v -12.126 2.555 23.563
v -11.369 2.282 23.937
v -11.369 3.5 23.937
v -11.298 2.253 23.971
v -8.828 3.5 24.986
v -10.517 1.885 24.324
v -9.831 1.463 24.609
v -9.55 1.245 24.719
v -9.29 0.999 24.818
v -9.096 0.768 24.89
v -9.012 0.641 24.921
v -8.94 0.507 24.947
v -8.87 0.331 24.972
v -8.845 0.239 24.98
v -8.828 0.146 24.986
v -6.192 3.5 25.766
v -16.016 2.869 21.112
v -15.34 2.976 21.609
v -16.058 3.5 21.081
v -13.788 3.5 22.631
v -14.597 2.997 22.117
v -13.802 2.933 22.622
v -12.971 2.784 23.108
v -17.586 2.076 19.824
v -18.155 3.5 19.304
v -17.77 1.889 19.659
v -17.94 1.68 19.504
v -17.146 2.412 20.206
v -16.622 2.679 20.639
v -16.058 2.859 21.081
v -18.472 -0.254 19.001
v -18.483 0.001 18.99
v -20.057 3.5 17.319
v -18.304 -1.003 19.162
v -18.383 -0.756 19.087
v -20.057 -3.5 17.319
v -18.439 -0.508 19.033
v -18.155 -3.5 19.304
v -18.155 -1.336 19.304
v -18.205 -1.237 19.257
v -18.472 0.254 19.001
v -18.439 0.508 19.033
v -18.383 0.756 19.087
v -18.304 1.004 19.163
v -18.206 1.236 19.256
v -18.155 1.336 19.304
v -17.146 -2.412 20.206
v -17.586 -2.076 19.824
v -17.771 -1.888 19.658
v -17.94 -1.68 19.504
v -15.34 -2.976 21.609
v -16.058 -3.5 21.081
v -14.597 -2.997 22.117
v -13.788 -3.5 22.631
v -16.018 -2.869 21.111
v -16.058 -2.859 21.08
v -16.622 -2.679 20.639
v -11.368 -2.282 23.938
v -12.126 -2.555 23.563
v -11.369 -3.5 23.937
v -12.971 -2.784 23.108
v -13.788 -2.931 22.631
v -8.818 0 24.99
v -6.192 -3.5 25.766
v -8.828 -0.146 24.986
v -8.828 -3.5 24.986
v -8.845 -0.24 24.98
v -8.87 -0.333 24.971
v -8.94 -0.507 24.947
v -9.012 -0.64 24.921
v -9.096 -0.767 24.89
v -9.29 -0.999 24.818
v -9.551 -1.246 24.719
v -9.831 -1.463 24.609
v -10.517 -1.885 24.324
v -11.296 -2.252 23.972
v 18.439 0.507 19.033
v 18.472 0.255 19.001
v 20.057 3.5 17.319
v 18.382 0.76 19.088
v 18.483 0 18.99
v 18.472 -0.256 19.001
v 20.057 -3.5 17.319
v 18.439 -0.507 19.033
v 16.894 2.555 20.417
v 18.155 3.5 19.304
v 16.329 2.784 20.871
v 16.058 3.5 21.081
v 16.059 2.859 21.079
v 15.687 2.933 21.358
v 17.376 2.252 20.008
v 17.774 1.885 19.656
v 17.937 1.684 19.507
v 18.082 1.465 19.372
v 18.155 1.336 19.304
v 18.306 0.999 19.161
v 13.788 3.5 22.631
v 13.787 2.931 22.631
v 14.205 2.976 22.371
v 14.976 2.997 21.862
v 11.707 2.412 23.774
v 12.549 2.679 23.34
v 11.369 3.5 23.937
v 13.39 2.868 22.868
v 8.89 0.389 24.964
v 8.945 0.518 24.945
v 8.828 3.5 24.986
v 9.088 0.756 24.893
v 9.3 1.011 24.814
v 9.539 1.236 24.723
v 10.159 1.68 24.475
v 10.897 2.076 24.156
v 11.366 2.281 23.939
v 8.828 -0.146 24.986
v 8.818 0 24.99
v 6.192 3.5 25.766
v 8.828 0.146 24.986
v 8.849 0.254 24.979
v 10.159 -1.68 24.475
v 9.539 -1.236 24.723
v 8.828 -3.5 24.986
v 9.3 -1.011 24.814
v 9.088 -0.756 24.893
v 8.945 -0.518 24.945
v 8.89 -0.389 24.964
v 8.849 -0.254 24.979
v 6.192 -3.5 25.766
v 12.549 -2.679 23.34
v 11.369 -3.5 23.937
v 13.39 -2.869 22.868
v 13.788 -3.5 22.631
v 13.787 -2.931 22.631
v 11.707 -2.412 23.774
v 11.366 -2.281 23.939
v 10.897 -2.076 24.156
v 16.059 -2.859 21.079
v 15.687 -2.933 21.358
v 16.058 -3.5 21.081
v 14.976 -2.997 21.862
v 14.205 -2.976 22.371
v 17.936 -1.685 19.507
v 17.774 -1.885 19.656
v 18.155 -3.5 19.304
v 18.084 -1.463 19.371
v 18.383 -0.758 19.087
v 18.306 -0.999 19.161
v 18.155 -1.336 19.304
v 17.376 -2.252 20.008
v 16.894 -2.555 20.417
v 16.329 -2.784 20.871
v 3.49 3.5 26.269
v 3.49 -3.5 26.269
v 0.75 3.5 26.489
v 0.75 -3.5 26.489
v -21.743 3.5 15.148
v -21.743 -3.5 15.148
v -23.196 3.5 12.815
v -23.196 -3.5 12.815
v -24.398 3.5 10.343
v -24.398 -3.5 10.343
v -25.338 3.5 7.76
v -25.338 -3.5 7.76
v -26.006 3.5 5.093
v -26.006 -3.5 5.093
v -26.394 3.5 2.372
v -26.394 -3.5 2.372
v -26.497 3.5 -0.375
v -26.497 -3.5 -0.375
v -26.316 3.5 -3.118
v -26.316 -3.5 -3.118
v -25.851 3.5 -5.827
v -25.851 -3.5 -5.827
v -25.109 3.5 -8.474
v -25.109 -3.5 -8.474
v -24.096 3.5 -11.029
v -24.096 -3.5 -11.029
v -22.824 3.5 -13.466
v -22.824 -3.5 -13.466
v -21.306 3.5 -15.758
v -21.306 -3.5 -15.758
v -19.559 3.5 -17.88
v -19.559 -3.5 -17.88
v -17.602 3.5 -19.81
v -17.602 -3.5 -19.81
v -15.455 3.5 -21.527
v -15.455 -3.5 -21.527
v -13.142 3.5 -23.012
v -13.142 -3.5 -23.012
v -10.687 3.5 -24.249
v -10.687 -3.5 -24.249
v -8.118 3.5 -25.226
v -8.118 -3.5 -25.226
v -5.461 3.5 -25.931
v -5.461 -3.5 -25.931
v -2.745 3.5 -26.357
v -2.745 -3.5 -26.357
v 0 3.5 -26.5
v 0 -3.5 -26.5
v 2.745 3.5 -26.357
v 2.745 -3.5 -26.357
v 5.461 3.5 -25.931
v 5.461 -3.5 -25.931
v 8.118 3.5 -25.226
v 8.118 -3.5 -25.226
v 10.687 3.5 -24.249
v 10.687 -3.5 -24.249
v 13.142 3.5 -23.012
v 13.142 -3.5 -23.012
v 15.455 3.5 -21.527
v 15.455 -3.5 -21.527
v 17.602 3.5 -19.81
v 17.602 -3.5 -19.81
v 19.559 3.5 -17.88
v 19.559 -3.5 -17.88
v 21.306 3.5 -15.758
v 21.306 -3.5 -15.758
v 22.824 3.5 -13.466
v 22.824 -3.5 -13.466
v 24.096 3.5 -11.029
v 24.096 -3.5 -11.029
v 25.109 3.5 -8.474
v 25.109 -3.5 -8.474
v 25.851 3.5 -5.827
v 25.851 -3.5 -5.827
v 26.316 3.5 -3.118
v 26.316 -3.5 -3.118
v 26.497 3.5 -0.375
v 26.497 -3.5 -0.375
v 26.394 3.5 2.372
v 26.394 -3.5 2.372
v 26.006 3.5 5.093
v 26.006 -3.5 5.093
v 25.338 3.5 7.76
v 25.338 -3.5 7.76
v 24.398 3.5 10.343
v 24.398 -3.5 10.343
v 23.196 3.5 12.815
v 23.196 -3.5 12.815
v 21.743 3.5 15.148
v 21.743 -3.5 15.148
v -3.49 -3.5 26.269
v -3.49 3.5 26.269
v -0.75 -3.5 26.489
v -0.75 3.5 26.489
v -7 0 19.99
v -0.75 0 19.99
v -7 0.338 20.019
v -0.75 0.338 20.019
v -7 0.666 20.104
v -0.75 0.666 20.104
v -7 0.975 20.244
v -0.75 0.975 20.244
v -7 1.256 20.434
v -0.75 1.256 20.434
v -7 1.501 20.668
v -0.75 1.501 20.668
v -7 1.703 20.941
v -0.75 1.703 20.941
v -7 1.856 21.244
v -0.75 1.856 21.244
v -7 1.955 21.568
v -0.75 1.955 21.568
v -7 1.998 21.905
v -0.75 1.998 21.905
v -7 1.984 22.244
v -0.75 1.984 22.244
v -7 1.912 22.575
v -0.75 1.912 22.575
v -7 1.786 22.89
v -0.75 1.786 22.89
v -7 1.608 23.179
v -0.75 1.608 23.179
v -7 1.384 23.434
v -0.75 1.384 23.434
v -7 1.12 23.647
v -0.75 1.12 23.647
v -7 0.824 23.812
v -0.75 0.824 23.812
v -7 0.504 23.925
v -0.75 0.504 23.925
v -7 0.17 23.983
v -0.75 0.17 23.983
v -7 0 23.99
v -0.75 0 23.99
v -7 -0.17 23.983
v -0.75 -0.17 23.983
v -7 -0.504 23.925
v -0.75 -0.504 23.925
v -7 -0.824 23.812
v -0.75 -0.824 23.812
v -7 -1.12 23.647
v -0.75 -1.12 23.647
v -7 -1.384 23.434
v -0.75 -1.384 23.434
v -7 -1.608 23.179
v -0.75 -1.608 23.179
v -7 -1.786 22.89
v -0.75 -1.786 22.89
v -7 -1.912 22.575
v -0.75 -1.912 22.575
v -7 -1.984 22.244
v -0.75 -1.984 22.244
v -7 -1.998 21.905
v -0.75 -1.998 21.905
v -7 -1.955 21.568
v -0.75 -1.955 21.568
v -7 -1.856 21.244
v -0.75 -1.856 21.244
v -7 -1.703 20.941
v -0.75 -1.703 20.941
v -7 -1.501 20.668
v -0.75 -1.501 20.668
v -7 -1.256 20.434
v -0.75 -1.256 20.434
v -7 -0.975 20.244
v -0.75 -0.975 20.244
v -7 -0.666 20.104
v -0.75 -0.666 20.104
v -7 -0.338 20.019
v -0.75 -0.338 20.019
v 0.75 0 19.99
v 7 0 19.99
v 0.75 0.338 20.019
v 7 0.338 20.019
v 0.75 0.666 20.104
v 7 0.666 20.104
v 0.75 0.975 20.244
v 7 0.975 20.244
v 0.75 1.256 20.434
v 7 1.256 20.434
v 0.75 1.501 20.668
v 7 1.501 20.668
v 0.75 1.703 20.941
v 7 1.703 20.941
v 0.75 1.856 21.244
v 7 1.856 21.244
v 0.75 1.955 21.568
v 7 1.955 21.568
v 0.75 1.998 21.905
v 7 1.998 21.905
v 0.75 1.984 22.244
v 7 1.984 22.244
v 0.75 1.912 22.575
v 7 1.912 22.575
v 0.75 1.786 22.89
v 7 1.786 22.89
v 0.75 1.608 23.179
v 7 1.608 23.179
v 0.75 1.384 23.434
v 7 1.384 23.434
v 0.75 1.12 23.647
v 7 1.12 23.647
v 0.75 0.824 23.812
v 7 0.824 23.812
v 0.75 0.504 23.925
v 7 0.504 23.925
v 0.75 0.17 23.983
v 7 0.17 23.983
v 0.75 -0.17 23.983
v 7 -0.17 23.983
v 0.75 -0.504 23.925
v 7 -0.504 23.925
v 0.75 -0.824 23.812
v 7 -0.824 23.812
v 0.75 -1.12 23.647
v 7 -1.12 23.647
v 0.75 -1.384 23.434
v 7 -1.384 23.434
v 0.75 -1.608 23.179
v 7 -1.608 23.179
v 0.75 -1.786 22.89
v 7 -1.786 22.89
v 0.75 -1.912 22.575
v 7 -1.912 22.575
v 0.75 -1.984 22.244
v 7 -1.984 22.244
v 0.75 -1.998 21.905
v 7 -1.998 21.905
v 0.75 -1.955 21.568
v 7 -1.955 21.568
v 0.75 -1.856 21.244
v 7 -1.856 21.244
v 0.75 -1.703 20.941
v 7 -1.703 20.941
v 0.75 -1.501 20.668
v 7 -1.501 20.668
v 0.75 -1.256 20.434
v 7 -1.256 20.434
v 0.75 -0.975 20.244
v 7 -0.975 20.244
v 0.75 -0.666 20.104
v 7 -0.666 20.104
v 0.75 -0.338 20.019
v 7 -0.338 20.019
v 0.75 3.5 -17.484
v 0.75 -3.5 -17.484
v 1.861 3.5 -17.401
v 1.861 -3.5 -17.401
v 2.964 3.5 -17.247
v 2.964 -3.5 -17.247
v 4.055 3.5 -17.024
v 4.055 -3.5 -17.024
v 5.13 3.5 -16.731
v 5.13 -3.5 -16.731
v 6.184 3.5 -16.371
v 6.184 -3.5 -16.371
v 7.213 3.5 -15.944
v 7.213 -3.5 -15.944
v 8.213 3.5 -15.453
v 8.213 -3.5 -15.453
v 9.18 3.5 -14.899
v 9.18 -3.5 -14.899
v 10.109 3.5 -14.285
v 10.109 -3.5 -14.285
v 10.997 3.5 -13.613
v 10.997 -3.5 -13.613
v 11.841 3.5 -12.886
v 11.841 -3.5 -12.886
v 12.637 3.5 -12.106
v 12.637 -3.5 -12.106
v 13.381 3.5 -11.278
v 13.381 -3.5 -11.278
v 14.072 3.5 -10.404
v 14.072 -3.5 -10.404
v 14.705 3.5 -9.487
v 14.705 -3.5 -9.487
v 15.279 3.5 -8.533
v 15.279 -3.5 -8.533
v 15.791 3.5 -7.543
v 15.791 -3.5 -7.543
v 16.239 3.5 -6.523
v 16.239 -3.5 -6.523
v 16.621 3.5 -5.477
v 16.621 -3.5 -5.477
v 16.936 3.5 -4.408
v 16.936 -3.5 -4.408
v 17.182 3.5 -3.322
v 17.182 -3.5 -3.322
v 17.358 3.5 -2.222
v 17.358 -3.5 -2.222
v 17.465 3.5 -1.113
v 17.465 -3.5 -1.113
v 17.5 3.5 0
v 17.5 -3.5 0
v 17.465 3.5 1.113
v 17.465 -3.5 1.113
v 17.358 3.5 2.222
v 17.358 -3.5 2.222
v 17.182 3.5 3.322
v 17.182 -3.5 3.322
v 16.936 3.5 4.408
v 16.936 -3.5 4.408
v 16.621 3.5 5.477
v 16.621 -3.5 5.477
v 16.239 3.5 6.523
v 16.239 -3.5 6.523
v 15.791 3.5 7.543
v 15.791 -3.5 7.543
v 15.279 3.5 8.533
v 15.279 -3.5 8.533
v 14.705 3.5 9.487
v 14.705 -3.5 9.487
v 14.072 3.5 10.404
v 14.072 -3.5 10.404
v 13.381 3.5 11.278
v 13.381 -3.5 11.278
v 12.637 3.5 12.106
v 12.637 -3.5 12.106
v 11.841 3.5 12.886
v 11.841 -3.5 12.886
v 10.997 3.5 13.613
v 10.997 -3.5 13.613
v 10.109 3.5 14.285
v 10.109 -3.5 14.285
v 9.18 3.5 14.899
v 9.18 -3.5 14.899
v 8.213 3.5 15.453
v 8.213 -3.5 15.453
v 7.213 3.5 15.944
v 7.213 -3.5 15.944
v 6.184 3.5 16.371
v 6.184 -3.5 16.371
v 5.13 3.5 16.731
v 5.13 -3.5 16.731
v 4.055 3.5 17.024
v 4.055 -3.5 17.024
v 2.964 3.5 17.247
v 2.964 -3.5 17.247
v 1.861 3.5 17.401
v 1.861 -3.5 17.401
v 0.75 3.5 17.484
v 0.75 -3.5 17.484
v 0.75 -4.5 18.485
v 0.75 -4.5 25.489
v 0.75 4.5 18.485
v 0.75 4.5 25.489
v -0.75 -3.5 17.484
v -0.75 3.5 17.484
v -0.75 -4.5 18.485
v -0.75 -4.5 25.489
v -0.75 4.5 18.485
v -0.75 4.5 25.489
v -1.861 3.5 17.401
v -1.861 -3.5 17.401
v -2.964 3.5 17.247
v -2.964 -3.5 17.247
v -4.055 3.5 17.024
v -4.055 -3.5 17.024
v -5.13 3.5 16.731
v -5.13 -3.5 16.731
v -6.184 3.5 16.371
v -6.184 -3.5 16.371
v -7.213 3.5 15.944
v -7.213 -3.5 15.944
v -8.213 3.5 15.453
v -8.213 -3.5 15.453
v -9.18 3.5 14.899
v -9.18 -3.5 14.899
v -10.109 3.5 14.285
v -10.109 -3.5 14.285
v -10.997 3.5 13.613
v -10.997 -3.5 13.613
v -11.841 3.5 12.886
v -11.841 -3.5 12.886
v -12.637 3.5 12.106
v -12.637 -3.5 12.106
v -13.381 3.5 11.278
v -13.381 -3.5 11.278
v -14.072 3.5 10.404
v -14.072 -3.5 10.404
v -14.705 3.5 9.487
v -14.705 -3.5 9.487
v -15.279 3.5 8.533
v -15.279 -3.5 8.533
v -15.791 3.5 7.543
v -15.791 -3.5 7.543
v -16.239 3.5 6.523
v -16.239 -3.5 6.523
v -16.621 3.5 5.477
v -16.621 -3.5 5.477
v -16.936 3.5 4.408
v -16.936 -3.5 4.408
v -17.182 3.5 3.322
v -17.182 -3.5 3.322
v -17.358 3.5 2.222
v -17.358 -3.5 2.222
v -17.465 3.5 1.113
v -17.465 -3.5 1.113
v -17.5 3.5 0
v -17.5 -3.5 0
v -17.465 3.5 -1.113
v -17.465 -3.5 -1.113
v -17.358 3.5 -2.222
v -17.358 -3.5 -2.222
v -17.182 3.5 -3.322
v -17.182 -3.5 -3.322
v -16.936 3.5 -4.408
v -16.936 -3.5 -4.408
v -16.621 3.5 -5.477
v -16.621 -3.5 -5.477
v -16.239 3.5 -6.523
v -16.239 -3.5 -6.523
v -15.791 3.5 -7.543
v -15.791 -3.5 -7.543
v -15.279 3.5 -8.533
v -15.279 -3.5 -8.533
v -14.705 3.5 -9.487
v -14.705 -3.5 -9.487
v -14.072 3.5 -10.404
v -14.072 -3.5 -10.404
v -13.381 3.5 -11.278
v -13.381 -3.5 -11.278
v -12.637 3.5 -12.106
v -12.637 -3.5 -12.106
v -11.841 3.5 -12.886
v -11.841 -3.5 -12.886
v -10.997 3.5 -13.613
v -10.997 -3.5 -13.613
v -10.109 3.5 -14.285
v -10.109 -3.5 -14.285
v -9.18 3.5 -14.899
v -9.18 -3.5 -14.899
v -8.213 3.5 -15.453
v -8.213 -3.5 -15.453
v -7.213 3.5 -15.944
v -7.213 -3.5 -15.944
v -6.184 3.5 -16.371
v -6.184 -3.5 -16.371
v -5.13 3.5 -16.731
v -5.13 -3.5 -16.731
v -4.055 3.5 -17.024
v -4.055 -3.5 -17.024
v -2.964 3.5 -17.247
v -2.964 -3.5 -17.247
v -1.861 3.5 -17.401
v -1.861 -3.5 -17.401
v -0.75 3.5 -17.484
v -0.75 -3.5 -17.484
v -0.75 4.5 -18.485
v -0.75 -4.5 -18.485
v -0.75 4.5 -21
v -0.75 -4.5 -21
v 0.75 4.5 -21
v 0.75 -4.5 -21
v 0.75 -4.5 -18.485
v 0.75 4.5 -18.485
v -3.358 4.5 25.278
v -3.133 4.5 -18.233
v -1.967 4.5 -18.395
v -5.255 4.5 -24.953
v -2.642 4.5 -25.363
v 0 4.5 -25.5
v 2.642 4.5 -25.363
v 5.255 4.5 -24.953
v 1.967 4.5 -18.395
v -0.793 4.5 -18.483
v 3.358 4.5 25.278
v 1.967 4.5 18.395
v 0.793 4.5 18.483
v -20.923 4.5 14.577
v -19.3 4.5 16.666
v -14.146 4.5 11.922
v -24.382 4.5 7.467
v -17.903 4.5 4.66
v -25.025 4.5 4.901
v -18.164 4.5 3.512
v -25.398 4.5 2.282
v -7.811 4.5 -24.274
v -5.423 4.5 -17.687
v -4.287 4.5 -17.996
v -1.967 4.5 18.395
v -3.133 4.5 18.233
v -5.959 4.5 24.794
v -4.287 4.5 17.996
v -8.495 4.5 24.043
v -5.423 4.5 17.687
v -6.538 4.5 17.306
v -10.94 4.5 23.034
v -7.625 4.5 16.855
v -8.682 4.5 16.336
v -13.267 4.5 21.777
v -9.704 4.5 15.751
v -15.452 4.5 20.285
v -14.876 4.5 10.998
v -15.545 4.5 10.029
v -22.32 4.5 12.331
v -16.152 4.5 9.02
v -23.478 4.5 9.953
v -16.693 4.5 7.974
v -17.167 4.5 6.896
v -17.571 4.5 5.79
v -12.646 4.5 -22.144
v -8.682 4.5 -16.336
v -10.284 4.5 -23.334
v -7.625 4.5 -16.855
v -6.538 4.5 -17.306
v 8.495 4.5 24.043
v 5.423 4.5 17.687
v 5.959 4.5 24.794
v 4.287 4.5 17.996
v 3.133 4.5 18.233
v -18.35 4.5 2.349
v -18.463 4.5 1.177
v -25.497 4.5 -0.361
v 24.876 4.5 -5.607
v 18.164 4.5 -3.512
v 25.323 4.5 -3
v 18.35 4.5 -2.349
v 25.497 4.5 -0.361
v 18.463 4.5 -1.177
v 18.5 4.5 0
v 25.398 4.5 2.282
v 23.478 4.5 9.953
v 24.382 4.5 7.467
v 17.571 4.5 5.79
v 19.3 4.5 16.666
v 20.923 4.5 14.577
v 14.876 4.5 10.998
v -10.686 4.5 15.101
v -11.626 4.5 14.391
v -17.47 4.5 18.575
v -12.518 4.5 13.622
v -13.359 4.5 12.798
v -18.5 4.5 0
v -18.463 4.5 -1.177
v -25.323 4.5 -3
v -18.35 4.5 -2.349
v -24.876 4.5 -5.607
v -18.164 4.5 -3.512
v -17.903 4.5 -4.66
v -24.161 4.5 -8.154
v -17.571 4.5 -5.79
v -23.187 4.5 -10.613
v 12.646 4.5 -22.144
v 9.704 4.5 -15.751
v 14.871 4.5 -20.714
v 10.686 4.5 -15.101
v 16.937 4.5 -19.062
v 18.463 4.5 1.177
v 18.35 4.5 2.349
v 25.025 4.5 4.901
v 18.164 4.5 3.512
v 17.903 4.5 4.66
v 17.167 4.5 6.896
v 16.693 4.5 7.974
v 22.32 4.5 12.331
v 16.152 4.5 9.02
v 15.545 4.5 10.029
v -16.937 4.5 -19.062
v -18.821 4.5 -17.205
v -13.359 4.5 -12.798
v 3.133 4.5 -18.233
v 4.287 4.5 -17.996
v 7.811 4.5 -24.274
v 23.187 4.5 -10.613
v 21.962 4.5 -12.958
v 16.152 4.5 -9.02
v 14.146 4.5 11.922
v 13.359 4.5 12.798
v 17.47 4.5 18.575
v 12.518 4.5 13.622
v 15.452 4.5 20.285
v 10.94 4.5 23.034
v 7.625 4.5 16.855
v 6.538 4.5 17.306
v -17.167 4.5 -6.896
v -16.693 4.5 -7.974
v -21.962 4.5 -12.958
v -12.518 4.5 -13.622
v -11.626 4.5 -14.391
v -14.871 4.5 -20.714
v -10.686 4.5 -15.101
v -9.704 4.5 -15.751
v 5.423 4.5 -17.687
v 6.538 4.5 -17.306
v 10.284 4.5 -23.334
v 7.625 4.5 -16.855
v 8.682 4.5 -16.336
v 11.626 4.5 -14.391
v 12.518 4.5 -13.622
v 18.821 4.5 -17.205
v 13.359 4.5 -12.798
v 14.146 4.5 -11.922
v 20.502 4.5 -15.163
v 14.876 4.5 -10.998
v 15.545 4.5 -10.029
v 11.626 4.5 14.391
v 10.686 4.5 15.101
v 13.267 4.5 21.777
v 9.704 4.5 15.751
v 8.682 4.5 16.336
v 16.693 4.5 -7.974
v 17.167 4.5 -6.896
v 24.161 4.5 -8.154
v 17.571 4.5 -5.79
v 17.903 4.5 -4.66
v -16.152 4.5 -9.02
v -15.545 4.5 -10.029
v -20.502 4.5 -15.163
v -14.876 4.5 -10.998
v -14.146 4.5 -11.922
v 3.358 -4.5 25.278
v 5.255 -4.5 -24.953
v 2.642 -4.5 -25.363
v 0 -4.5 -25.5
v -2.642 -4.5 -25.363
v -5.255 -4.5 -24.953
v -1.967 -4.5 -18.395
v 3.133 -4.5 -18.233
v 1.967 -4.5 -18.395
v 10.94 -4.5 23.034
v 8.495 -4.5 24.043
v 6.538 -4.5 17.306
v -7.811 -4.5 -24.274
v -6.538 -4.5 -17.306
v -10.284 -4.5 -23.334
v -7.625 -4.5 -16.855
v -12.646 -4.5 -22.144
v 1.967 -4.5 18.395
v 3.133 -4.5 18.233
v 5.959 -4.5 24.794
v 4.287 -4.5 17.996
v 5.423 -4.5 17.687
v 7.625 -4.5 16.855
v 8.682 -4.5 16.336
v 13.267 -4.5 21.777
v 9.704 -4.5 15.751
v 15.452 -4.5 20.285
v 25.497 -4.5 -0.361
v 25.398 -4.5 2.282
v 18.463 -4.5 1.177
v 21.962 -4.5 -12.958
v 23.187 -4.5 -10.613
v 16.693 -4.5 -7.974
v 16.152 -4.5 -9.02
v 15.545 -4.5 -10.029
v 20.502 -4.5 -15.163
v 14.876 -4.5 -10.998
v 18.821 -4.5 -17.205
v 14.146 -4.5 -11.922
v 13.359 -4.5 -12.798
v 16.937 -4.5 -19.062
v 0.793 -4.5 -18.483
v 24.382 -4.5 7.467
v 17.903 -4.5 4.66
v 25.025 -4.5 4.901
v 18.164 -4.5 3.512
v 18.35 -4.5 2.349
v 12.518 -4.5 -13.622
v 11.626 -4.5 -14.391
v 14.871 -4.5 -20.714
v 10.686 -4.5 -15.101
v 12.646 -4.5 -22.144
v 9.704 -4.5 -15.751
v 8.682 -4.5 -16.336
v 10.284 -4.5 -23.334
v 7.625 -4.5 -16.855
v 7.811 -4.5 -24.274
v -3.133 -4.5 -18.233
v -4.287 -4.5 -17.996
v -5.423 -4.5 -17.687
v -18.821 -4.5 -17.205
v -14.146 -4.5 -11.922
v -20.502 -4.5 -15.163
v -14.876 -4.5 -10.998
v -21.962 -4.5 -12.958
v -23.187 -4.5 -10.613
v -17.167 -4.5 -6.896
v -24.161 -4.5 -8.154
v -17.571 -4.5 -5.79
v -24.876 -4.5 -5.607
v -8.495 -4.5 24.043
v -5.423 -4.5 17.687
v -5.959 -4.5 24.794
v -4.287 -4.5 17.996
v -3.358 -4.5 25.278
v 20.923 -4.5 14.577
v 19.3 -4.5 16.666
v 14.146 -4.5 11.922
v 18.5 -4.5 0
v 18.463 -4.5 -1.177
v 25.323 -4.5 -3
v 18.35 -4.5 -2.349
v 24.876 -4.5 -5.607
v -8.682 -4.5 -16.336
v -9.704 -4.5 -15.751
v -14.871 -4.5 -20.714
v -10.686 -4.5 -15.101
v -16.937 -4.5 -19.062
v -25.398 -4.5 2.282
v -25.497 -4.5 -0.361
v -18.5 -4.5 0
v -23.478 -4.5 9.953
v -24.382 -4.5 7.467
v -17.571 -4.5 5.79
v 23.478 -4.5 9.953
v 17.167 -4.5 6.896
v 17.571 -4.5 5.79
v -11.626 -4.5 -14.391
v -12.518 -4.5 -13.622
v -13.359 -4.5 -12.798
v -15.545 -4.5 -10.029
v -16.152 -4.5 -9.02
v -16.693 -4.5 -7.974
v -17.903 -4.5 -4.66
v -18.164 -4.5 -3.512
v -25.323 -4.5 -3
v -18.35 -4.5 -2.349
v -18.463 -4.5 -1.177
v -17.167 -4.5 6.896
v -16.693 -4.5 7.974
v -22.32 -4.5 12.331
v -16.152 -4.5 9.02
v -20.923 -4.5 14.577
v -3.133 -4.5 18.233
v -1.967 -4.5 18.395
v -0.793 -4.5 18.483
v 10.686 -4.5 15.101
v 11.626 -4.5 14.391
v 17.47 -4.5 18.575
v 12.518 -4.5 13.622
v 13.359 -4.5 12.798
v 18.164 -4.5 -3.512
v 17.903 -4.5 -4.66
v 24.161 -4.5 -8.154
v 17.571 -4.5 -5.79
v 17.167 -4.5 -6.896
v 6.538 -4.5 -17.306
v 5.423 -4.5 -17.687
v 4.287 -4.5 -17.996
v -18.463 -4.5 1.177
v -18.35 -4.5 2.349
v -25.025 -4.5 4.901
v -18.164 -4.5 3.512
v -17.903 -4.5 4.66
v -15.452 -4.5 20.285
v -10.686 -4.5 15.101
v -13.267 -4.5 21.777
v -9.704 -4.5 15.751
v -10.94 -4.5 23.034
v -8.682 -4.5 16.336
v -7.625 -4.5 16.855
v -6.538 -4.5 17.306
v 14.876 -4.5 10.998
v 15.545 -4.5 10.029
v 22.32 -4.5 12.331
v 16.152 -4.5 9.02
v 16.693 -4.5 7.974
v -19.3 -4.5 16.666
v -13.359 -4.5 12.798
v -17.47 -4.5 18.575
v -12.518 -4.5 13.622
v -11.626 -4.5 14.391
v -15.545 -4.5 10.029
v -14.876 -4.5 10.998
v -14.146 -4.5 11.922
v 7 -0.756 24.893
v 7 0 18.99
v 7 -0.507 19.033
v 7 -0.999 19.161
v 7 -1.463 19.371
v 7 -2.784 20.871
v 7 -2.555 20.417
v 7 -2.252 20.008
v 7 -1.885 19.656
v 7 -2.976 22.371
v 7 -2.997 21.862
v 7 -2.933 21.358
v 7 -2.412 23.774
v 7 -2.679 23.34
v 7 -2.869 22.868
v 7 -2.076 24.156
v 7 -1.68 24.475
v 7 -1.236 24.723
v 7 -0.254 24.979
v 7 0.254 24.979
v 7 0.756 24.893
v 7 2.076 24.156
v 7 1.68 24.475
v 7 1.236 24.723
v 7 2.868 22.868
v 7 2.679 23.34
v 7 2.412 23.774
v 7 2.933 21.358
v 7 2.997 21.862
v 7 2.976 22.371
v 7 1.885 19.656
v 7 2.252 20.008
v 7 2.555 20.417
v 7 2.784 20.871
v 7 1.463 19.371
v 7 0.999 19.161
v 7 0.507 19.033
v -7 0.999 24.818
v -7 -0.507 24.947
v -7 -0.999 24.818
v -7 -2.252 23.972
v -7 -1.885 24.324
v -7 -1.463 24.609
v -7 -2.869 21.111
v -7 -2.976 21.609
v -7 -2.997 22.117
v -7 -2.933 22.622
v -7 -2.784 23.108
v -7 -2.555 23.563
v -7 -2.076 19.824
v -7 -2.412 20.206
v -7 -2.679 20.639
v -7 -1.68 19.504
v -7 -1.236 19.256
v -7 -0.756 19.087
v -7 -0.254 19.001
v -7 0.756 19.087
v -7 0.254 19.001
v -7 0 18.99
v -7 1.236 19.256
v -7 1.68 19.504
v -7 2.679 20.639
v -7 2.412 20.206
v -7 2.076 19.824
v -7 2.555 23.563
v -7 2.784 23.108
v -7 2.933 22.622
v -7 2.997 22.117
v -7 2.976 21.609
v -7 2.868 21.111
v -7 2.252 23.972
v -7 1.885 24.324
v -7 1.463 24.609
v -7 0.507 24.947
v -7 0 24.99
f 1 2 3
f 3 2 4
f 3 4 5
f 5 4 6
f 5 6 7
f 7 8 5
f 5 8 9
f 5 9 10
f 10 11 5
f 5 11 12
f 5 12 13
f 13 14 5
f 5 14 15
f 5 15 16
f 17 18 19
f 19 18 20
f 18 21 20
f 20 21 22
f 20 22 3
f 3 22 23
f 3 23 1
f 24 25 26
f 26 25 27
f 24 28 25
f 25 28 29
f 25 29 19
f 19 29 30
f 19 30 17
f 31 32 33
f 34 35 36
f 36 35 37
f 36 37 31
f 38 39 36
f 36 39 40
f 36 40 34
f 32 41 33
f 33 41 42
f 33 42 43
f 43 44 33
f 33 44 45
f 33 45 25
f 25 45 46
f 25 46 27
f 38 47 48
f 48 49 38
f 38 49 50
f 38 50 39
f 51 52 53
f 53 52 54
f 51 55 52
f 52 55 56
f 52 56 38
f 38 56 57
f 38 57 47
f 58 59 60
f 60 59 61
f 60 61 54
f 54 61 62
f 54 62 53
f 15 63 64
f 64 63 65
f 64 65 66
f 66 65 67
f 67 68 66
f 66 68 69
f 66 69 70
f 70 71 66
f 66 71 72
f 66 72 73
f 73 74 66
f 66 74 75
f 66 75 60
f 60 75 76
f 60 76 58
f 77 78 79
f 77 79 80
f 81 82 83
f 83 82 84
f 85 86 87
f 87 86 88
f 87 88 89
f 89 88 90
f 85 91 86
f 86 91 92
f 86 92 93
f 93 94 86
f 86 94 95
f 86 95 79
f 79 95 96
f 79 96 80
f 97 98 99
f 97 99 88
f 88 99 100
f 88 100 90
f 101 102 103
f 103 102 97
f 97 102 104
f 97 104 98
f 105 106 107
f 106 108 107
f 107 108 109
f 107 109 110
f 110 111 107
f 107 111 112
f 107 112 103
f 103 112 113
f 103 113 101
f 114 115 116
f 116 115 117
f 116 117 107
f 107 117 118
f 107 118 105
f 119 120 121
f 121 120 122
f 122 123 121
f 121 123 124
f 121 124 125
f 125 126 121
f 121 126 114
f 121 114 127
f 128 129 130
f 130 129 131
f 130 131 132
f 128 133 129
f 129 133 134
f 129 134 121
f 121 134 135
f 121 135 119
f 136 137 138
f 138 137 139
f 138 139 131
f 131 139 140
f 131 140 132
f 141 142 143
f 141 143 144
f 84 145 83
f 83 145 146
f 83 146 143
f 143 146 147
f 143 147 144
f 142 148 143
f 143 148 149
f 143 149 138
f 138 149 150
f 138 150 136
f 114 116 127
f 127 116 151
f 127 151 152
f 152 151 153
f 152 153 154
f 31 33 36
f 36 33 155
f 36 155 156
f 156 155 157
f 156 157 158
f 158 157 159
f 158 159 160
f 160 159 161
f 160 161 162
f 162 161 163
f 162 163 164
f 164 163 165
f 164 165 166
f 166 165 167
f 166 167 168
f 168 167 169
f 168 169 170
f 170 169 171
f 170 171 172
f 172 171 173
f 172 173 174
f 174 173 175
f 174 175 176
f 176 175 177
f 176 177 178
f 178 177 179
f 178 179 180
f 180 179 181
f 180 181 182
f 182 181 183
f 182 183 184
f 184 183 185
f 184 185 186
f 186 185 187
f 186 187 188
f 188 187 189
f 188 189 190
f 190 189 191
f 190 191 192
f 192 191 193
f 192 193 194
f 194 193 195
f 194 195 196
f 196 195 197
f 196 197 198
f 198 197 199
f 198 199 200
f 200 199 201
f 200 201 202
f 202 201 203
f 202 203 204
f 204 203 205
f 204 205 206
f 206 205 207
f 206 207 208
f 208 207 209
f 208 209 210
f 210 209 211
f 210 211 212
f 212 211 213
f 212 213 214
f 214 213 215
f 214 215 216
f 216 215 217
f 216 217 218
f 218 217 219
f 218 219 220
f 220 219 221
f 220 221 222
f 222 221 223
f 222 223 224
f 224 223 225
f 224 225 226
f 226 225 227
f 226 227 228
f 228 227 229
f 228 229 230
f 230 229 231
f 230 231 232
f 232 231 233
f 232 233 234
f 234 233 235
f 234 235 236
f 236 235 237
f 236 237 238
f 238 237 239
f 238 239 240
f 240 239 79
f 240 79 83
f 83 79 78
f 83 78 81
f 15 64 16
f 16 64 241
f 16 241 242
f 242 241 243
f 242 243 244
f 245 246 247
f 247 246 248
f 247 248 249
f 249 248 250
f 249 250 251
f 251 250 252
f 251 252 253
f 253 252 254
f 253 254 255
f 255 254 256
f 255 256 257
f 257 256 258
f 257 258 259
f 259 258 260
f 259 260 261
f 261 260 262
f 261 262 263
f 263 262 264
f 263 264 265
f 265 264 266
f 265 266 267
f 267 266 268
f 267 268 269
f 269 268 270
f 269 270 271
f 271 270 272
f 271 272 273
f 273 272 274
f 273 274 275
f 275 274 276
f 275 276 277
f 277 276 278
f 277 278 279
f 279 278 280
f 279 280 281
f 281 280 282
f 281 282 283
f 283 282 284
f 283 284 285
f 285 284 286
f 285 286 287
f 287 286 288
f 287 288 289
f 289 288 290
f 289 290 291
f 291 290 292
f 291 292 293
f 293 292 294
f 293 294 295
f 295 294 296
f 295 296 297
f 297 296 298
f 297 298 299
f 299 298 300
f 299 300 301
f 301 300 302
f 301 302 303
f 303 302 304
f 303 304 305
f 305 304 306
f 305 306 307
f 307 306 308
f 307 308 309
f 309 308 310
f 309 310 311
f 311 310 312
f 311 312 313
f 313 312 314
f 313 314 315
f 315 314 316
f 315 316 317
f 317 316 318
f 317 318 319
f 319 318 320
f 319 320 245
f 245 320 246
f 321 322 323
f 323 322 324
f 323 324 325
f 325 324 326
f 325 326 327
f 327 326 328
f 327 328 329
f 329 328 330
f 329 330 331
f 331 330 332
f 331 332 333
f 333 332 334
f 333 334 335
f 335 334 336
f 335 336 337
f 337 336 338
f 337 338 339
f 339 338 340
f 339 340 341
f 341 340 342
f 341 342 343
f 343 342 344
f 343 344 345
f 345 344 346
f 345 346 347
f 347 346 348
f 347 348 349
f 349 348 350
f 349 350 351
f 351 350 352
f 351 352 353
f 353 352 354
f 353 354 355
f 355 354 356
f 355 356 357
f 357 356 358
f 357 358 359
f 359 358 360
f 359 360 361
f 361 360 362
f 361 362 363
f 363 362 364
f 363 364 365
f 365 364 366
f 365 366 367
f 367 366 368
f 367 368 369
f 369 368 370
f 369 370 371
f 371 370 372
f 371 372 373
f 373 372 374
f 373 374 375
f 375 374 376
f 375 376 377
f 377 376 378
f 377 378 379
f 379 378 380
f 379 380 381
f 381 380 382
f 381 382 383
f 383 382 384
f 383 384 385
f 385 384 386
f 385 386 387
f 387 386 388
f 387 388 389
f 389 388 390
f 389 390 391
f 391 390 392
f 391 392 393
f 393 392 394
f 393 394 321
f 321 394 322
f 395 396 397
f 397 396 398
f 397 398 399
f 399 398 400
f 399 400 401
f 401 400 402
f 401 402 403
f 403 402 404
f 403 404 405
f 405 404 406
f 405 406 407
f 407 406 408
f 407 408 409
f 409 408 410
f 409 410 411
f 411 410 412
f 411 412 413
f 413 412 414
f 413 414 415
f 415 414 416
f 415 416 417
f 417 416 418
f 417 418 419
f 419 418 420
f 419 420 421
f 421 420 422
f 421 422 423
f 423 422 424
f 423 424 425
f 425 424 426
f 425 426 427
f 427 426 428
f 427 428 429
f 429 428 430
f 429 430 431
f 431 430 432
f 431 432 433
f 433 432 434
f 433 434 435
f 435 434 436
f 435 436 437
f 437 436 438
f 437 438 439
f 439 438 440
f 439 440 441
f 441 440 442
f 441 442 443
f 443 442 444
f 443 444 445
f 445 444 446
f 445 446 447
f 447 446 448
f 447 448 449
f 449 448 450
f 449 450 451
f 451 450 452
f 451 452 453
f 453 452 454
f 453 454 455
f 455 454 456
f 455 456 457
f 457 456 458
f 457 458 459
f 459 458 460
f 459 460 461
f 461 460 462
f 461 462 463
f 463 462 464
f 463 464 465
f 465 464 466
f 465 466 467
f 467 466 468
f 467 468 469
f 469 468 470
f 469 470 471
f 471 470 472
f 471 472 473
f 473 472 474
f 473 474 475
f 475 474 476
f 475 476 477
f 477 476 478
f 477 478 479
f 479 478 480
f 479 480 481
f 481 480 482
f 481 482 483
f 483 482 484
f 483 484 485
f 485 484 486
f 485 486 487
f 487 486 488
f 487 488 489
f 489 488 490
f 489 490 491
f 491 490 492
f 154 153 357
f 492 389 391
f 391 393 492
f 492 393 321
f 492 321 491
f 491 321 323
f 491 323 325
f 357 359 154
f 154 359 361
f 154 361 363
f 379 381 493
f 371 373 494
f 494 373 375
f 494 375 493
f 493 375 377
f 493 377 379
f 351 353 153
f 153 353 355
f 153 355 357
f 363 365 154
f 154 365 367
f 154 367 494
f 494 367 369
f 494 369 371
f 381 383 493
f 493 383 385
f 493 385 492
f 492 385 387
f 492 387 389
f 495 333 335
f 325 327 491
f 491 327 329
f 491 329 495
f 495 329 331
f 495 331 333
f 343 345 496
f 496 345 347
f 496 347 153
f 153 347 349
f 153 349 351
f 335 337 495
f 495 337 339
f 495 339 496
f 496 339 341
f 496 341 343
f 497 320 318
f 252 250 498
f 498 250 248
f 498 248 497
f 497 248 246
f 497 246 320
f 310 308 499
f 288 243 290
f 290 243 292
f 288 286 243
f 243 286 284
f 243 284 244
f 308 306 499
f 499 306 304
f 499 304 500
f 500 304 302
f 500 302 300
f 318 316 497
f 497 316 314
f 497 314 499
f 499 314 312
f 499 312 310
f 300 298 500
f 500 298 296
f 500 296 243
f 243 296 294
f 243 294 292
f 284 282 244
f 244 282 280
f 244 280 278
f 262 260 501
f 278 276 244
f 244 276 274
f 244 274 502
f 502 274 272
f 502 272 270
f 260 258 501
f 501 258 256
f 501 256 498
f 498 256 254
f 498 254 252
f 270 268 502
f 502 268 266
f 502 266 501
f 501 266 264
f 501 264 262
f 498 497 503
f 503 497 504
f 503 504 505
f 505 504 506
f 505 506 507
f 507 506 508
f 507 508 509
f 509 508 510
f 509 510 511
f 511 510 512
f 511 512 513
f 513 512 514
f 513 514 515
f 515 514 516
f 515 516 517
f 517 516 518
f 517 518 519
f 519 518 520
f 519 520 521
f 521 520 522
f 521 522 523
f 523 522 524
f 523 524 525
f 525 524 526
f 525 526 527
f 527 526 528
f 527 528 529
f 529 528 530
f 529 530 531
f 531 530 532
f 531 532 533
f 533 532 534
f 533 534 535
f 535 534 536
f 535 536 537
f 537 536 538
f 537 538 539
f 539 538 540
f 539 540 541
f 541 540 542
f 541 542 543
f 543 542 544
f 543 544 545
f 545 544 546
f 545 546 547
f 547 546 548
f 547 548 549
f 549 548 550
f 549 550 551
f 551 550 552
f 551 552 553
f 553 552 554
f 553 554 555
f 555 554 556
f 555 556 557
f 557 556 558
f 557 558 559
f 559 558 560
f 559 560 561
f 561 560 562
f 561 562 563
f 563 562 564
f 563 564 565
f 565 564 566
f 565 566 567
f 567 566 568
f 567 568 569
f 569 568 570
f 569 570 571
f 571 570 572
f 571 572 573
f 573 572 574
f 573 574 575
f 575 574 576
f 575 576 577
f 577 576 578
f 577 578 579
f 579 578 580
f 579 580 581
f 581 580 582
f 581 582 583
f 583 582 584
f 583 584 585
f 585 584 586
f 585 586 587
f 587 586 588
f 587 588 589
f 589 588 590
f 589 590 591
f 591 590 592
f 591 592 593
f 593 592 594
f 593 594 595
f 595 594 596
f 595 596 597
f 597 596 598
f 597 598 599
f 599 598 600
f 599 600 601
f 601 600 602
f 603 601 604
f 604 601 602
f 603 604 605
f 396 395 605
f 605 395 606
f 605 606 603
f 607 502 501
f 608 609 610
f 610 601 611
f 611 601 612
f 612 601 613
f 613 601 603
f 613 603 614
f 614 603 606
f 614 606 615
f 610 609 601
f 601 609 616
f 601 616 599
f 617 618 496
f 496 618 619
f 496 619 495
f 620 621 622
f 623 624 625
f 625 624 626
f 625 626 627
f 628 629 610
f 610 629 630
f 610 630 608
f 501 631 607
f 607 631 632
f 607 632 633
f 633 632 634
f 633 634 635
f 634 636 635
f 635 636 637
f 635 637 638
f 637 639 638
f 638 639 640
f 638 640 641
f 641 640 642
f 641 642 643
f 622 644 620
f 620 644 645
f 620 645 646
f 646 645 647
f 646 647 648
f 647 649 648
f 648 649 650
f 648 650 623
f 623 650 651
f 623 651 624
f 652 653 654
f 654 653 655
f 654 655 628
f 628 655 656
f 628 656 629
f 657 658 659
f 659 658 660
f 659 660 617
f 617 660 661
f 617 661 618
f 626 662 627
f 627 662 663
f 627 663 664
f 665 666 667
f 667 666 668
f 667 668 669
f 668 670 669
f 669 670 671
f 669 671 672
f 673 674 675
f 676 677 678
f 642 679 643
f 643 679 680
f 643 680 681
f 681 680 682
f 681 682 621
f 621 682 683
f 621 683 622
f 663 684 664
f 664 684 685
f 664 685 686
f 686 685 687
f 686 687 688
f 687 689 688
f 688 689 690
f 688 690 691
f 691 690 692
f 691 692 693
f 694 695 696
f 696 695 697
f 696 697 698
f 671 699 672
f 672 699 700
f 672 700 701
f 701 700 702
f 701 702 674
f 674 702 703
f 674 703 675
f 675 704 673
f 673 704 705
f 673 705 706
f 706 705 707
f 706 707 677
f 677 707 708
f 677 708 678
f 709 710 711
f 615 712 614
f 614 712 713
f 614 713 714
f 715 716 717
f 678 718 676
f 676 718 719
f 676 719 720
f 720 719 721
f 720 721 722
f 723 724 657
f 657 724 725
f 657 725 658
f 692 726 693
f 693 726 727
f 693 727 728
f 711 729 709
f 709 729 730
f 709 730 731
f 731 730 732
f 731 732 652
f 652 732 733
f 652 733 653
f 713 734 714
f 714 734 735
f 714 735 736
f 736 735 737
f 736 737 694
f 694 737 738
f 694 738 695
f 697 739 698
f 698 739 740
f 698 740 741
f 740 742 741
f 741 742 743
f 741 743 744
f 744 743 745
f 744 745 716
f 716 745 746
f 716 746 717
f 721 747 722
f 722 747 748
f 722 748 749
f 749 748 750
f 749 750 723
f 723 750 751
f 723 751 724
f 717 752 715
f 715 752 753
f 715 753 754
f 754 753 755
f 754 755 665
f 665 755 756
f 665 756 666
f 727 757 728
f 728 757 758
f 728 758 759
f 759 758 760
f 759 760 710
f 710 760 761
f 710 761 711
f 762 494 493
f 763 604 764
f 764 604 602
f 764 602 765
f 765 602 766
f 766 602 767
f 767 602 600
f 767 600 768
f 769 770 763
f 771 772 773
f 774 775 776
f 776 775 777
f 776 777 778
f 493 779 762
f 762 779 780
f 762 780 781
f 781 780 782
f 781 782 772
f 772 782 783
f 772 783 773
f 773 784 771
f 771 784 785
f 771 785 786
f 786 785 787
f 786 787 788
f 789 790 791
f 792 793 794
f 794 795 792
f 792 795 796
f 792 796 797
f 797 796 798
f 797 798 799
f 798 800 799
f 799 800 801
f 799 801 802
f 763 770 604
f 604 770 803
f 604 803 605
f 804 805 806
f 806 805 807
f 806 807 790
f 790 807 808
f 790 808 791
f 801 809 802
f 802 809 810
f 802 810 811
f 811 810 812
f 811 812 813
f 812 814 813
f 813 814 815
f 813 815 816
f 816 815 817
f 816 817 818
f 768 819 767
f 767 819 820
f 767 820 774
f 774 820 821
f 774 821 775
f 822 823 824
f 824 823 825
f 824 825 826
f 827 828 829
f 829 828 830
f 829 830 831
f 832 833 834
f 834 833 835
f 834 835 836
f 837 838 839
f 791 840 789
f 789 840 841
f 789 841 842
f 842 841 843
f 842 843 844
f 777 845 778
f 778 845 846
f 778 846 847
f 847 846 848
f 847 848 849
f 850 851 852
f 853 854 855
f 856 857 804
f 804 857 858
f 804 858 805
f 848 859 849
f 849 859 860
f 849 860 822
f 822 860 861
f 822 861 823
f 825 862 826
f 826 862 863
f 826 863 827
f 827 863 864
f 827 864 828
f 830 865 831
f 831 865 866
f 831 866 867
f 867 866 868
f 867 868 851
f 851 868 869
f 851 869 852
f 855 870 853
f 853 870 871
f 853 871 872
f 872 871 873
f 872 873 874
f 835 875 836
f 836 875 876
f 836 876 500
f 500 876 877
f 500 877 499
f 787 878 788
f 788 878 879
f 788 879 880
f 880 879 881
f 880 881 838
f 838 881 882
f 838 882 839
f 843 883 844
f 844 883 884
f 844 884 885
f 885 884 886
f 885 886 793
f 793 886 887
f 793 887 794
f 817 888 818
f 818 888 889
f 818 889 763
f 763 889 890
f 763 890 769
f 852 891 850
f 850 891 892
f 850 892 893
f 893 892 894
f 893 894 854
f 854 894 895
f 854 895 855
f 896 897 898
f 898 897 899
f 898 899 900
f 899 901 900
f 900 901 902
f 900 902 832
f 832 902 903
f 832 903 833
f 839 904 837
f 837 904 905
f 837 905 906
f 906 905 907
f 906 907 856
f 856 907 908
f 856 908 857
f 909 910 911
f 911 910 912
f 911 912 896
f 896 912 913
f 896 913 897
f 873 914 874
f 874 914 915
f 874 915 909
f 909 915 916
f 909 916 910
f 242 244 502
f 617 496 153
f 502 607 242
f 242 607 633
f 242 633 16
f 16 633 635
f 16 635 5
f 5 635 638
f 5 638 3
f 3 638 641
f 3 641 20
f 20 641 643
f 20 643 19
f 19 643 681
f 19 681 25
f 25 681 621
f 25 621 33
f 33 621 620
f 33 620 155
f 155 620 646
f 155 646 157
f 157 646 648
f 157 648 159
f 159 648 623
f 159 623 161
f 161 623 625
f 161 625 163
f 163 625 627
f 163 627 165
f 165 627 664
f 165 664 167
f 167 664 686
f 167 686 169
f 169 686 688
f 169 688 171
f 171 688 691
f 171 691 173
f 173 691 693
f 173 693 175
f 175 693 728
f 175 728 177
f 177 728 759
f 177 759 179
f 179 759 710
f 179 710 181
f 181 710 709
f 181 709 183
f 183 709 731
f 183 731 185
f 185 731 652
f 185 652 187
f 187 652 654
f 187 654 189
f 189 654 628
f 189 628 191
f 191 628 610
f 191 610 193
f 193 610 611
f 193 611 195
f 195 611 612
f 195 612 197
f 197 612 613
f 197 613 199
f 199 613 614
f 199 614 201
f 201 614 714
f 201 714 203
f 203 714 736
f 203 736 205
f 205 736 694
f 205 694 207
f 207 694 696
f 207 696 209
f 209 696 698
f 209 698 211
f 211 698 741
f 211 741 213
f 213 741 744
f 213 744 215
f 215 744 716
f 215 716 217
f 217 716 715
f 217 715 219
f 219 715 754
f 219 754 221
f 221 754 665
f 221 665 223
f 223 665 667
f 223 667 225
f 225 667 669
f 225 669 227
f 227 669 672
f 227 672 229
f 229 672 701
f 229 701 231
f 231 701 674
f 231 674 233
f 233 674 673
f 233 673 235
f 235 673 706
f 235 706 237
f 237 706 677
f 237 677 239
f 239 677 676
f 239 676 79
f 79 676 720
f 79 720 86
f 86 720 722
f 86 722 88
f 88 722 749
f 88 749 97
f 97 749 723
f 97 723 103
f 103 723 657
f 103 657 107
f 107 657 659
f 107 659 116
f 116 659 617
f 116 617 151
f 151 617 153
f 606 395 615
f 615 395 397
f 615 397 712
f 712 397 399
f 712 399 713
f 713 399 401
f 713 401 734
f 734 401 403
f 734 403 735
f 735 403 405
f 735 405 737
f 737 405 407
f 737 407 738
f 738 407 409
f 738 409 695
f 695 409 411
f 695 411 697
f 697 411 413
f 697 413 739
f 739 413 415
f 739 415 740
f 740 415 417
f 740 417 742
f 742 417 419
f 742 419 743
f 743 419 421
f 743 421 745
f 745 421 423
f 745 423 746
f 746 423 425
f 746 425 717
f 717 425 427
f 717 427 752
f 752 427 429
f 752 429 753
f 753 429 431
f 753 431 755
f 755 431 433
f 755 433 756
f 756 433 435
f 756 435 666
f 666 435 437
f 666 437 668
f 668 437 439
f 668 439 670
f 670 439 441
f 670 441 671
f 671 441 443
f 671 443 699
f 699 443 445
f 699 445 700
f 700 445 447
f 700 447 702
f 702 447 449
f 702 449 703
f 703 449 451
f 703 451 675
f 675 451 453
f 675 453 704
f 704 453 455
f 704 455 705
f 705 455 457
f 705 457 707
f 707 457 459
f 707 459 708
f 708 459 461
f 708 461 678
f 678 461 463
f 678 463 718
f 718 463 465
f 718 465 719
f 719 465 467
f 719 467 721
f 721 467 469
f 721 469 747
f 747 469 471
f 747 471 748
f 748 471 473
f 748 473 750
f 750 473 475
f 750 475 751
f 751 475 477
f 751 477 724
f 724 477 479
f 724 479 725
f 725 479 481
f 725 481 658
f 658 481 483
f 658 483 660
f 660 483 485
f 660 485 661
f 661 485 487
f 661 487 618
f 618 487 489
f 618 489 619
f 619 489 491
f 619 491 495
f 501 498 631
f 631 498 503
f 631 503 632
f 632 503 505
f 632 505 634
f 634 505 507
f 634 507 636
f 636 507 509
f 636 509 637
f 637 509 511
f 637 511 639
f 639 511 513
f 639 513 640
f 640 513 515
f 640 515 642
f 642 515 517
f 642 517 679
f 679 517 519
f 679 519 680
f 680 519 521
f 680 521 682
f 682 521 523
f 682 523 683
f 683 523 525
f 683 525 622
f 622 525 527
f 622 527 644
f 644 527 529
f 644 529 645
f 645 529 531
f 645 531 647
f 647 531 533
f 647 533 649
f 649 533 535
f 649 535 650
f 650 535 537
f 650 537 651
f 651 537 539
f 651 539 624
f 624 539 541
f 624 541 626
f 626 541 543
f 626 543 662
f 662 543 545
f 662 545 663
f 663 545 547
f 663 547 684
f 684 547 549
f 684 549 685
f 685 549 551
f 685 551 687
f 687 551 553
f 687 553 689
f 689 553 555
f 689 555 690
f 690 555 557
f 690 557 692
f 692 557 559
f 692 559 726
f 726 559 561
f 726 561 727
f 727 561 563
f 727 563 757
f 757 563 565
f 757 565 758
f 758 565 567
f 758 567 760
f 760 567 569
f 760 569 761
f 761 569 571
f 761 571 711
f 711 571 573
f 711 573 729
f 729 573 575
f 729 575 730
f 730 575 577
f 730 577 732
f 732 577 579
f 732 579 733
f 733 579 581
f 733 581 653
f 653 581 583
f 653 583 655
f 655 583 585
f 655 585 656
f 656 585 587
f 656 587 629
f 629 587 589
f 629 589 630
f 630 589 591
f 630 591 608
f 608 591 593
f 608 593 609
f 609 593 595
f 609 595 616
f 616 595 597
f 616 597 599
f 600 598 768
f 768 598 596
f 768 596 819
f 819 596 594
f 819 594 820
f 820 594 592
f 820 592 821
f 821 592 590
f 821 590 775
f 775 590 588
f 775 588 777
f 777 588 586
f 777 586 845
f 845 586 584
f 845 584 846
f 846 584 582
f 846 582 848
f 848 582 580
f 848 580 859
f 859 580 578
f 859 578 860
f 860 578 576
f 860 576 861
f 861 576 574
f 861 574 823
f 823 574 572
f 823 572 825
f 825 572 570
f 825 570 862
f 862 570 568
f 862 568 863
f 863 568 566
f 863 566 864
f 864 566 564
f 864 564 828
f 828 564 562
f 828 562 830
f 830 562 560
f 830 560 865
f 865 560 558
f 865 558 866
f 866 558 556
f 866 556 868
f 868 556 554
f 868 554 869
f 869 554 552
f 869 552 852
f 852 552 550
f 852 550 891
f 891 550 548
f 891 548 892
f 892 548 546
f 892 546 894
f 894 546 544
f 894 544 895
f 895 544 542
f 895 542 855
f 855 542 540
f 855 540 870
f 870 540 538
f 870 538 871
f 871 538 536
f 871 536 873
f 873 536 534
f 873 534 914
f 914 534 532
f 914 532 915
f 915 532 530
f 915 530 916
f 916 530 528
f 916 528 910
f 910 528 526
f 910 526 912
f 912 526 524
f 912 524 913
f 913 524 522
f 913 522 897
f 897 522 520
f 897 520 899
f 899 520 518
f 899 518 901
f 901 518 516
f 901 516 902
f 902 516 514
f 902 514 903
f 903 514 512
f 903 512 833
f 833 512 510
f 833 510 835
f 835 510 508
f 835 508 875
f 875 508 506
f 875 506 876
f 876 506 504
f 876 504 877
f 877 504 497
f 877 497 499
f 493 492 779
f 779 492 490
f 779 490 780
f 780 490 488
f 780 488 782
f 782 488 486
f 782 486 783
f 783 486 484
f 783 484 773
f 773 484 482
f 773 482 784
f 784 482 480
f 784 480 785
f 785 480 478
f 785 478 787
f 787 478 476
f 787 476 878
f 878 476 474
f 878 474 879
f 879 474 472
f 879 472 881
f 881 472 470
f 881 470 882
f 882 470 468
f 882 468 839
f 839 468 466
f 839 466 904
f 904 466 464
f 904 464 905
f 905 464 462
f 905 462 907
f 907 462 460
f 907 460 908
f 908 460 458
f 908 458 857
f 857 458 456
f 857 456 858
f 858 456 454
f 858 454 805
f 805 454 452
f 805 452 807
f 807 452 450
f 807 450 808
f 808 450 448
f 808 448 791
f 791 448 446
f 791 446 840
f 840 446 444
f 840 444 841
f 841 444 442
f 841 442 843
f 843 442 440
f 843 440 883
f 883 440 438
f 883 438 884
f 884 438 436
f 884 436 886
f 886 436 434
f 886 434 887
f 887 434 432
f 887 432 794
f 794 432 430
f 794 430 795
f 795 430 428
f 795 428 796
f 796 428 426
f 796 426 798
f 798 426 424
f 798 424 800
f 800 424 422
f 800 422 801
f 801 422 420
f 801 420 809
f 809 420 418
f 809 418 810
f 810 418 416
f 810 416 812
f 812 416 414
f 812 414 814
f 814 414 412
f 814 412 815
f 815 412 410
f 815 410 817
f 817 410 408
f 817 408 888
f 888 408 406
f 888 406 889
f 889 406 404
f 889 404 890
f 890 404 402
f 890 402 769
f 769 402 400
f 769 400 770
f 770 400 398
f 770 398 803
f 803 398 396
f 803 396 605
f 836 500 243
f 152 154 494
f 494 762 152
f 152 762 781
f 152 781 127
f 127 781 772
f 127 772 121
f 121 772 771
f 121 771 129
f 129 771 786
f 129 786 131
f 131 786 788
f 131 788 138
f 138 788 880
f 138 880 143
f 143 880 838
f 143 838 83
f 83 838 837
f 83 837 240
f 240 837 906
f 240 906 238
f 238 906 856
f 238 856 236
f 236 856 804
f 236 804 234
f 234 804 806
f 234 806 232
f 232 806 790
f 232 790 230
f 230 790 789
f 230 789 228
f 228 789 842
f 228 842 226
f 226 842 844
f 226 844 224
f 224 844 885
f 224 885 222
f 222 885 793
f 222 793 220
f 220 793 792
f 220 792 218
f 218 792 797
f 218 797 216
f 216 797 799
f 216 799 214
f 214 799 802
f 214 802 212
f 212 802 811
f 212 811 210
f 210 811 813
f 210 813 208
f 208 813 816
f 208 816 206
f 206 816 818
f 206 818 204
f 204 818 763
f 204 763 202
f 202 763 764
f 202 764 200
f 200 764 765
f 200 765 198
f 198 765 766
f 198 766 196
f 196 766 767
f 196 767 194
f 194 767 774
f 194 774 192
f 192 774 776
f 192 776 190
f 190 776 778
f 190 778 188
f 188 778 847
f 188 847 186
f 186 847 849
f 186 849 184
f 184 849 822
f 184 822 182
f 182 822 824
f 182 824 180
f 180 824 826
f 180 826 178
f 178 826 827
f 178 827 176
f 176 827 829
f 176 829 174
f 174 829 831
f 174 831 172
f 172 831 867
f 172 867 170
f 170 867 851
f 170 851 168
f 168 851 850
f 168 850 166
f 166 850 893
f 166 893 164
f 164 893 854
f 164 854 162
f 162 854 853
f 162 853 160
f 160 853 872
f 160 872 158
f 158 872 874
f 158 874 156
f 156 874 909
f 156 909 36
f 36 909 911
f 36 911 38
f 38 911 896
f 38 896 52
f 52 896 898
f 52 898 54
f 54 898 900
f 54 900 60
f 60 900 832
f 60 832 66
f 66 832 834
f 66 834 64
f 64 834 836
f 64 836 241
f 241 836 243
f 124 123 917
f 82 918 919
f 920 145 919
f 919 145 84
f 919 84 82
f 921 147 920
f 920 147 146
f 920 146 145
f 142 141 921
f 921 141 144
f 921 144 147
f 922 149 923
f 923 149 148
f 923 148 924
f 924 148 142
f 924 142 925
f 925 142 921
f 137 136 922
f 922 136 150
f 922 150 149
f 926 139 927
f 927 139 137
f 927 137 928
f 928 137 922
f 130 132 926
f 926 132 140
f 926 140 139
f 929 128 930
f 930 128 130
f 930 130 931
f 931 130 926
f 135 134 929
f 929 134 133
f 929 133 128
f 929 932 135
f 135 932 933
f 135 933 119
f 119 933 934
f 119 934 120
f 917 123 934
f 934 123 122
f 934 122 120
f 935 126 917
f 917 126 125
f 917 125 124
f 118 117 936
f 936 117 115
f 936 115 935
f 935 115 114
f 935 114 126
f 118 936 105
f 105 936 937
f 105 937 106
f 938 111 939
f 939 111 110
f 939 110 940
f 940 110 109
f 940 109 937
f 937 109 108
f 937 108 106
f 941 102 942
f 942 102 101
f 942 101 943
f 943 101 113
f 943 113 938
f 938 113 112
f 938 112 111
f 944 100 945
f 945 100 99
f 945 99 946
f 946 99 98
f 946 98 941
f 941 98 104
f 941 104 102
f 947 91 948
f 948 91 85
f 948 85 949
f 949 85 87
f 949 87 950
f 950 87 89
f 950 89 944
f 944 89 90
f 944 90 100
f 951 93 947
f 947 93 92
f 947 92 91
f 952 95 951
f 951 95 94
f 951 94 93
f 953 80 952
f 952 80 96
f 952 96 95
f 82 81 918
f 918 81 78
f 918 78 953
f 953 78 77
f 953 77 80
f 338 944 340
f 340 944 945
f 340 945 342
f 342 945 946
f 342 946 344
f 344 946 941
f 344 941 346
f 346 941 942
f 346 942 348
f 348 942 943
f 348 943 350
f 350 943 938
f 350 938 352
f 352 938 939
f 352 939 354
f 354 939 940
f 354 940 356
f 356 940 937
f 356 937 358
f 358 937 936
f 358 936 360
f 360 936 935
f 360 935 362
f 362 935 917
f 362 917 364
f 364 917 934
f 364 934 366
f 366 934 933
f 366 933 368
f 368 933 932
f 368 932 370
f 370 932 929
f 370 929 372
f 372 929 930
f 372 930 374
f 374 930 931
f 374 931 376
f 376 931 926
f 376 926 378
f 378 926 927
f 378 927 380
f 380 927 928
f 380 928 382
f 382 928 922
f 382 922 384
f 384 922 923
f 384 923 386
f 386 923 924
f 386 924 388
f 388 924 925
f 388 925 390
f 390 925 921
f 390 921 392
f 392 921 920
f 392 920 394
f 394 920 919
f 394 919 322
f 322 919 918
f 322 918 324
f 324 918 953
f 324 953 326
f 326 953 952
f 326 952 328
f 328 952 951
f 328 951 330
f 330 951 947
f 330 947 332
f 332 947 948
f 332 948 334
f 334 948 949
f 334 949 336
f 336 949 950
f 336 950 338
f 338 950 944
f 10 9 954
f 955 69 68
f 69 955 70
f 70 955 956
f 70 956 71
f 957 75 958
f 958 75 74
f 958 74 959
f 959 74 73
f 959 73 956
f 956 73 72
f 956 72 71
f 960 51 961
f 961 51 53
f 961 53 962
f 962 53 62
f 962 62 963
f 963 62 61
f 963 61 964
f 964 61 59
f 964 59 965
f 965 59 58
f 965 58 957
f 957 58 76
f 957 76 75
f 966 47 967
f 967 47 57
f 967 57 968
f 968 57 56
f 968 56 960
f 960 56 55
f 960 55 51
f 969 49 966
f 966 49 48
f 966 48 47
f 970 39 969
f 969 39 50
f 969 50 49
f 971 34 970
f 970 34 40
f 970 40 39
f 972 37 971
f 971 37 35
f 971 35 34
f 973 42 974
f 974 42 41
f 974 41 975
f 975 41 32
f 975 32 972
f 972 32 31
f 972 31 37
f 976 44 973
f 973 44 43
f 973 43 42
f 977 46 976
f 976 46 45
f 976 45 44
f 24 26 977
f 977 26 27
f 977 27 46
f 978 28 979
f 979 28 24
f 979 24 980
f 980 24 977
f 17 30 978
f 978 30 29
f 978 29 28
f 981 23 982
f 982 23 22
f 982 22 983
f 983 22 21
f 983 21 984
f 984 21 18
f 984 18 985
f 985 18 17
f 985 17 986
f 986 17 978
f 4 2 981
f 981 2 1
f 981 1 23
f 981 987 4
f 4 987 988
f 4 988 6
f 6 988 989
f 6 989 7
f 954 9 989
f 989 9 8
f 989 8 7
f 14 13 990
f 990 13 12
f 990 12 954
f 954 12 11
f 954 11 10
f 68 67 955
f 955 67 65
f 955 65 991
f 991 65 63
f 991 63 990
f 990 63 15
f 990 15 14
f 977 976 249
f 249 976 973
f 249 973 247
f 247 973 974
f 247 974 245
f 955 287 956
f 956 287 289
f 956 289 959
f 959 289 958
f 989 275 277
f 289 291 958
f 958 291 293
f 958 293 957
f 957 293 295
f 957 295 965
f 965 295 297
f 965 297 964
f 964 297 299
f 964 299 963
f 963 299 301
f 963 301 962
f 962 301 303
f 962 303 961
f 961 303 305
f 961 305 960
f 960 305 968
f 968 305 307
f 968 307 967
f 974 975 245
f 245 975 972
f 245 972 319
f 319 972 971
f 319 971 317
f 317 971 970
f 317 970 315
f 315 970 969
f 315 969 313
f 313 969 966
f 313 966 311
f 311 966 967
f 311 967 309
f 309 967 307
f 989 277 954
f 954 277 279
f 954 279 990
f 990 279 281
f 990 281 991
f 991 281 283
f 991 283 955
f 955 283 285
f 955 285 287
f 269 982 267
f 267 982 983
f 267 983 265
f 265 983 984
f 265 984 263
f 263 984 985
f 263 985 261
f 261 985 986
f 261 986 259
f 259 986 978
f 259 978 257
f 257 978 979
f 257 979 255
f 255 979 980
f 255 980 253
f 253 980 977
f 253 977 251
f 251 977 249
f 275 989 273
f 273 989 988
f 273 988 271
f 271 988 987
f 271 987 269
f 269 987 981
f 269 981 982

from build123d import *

# Parameters (mm, degrees)
BOSS_EXTRUDE1_DEPTH     = 4.5
CHAMFER2_SIZE           = 1
CHAMFER3_SIZE           = 1
CUT_EXTRUDE1_DEPTH      = 38.7458607
CUT_EXTRUDE1_DEPTH_BACK = 38.7458607
SKETCH2_R               = 2
SKETCH3_R               = 3
CUT_EXTRUDE4_DEPTH      = 13


with BuildPart() as part:
    # Sketch1 → Boss-Extrude1 (new, symmetric)
    with BuildSketch(Plane(origin=(0, 0, 0), x_dir=(1, 0, 0), z_dir=(0, 1, 0))):
        with BuildLine():
            Line((-0.75, 21), (0.75, 21))
            Line((0.75, 21), (0.75, 17.483921185))
            ThreePointArc((0.75, 17.483921185), (17.5, 0), (0.75, -17.483921185))
            Line((0.75, -17.483921185), (0.75, -26.489384666))
            ThreePointArc((0.75, -26.489384666), (0, 26.5), (-0.75, -26.489384666))
            Line((-0.75, -26.489384666), (-0.75, -17.483921185))
            ThreePointArc((-0.75, -17.483921185), (-17.5, 0), (-0.75, 17.483921185))
            Line((-0.75, 17.483921185), (-0.75, 21))
        make_face()
    extrude(amount=BOSS_EXTRUDE1_DEPTH, both=True)

    # Chamfer2
    chamfer2_edges = [part.edges().sort_by_distance(p)[0] for p in [
        (0, 4.5, -26.5),
        (-17.5, 4.5, 0),
        (17.5, 4.5, 0),
    ]]
    chamfer(chamfer2_edges, length=CHAMFER2_SIZE)

    # Chamfer3
    chamfer3_edges = [part.edges().sort_by_distance(p)[0] for p in [
        (0, -4.5, -26.5),
        (17.5, -4.5, 0),
        (-17.5, -4.5, 0),
    ]]
    chamfer(chamfer3_edges, length=CHAMFER3_SIZE)

    # Sketch2 → Cut-Extrude1 (cut, two sides: drawn at the far end of the back side and taken through both)
    with BuildSketch(Plane(origin=(0, 0, 0), x_dir=(0, 0, -1), z_dir=(1, 0, 0)).offset(-CUT_EXTRUDE1_DEPTH_BACK)):
        with Locations((-21.989789185, 0)):
            Circle(SKETCH2_R)
    extrude(amount=CUT_EXTRUDE1_DEPTH + CUT_EXTRUDE1_DEPTH_BACK, mode=Mode.SUBTRACT)

    # Sketch3 → Cut-Extrude4 (cut)
    with BuildSketch(Plane(origin=(20, 0, 0), x_dir=(0, 0, -1), z_dir=(1, 0, 0))):
        with Locations((-21.989789185, 0)):
            Circle(SKETCH3_R)
    cut_extrude4 = extrude(amount=-CUT_EXTRUDE4_DEPTH, mode=Mode.SUBTRACT)

    # Mirror3: Cut-Extrude4 across plane
    add(cut_extrude4.mirror(Plane(origin=(0, 0, 0), x_dir=(0, 0, 1), z_dir=(1, 0, 0))), mode=Mode.SUBTRACT)


solid = part.part
